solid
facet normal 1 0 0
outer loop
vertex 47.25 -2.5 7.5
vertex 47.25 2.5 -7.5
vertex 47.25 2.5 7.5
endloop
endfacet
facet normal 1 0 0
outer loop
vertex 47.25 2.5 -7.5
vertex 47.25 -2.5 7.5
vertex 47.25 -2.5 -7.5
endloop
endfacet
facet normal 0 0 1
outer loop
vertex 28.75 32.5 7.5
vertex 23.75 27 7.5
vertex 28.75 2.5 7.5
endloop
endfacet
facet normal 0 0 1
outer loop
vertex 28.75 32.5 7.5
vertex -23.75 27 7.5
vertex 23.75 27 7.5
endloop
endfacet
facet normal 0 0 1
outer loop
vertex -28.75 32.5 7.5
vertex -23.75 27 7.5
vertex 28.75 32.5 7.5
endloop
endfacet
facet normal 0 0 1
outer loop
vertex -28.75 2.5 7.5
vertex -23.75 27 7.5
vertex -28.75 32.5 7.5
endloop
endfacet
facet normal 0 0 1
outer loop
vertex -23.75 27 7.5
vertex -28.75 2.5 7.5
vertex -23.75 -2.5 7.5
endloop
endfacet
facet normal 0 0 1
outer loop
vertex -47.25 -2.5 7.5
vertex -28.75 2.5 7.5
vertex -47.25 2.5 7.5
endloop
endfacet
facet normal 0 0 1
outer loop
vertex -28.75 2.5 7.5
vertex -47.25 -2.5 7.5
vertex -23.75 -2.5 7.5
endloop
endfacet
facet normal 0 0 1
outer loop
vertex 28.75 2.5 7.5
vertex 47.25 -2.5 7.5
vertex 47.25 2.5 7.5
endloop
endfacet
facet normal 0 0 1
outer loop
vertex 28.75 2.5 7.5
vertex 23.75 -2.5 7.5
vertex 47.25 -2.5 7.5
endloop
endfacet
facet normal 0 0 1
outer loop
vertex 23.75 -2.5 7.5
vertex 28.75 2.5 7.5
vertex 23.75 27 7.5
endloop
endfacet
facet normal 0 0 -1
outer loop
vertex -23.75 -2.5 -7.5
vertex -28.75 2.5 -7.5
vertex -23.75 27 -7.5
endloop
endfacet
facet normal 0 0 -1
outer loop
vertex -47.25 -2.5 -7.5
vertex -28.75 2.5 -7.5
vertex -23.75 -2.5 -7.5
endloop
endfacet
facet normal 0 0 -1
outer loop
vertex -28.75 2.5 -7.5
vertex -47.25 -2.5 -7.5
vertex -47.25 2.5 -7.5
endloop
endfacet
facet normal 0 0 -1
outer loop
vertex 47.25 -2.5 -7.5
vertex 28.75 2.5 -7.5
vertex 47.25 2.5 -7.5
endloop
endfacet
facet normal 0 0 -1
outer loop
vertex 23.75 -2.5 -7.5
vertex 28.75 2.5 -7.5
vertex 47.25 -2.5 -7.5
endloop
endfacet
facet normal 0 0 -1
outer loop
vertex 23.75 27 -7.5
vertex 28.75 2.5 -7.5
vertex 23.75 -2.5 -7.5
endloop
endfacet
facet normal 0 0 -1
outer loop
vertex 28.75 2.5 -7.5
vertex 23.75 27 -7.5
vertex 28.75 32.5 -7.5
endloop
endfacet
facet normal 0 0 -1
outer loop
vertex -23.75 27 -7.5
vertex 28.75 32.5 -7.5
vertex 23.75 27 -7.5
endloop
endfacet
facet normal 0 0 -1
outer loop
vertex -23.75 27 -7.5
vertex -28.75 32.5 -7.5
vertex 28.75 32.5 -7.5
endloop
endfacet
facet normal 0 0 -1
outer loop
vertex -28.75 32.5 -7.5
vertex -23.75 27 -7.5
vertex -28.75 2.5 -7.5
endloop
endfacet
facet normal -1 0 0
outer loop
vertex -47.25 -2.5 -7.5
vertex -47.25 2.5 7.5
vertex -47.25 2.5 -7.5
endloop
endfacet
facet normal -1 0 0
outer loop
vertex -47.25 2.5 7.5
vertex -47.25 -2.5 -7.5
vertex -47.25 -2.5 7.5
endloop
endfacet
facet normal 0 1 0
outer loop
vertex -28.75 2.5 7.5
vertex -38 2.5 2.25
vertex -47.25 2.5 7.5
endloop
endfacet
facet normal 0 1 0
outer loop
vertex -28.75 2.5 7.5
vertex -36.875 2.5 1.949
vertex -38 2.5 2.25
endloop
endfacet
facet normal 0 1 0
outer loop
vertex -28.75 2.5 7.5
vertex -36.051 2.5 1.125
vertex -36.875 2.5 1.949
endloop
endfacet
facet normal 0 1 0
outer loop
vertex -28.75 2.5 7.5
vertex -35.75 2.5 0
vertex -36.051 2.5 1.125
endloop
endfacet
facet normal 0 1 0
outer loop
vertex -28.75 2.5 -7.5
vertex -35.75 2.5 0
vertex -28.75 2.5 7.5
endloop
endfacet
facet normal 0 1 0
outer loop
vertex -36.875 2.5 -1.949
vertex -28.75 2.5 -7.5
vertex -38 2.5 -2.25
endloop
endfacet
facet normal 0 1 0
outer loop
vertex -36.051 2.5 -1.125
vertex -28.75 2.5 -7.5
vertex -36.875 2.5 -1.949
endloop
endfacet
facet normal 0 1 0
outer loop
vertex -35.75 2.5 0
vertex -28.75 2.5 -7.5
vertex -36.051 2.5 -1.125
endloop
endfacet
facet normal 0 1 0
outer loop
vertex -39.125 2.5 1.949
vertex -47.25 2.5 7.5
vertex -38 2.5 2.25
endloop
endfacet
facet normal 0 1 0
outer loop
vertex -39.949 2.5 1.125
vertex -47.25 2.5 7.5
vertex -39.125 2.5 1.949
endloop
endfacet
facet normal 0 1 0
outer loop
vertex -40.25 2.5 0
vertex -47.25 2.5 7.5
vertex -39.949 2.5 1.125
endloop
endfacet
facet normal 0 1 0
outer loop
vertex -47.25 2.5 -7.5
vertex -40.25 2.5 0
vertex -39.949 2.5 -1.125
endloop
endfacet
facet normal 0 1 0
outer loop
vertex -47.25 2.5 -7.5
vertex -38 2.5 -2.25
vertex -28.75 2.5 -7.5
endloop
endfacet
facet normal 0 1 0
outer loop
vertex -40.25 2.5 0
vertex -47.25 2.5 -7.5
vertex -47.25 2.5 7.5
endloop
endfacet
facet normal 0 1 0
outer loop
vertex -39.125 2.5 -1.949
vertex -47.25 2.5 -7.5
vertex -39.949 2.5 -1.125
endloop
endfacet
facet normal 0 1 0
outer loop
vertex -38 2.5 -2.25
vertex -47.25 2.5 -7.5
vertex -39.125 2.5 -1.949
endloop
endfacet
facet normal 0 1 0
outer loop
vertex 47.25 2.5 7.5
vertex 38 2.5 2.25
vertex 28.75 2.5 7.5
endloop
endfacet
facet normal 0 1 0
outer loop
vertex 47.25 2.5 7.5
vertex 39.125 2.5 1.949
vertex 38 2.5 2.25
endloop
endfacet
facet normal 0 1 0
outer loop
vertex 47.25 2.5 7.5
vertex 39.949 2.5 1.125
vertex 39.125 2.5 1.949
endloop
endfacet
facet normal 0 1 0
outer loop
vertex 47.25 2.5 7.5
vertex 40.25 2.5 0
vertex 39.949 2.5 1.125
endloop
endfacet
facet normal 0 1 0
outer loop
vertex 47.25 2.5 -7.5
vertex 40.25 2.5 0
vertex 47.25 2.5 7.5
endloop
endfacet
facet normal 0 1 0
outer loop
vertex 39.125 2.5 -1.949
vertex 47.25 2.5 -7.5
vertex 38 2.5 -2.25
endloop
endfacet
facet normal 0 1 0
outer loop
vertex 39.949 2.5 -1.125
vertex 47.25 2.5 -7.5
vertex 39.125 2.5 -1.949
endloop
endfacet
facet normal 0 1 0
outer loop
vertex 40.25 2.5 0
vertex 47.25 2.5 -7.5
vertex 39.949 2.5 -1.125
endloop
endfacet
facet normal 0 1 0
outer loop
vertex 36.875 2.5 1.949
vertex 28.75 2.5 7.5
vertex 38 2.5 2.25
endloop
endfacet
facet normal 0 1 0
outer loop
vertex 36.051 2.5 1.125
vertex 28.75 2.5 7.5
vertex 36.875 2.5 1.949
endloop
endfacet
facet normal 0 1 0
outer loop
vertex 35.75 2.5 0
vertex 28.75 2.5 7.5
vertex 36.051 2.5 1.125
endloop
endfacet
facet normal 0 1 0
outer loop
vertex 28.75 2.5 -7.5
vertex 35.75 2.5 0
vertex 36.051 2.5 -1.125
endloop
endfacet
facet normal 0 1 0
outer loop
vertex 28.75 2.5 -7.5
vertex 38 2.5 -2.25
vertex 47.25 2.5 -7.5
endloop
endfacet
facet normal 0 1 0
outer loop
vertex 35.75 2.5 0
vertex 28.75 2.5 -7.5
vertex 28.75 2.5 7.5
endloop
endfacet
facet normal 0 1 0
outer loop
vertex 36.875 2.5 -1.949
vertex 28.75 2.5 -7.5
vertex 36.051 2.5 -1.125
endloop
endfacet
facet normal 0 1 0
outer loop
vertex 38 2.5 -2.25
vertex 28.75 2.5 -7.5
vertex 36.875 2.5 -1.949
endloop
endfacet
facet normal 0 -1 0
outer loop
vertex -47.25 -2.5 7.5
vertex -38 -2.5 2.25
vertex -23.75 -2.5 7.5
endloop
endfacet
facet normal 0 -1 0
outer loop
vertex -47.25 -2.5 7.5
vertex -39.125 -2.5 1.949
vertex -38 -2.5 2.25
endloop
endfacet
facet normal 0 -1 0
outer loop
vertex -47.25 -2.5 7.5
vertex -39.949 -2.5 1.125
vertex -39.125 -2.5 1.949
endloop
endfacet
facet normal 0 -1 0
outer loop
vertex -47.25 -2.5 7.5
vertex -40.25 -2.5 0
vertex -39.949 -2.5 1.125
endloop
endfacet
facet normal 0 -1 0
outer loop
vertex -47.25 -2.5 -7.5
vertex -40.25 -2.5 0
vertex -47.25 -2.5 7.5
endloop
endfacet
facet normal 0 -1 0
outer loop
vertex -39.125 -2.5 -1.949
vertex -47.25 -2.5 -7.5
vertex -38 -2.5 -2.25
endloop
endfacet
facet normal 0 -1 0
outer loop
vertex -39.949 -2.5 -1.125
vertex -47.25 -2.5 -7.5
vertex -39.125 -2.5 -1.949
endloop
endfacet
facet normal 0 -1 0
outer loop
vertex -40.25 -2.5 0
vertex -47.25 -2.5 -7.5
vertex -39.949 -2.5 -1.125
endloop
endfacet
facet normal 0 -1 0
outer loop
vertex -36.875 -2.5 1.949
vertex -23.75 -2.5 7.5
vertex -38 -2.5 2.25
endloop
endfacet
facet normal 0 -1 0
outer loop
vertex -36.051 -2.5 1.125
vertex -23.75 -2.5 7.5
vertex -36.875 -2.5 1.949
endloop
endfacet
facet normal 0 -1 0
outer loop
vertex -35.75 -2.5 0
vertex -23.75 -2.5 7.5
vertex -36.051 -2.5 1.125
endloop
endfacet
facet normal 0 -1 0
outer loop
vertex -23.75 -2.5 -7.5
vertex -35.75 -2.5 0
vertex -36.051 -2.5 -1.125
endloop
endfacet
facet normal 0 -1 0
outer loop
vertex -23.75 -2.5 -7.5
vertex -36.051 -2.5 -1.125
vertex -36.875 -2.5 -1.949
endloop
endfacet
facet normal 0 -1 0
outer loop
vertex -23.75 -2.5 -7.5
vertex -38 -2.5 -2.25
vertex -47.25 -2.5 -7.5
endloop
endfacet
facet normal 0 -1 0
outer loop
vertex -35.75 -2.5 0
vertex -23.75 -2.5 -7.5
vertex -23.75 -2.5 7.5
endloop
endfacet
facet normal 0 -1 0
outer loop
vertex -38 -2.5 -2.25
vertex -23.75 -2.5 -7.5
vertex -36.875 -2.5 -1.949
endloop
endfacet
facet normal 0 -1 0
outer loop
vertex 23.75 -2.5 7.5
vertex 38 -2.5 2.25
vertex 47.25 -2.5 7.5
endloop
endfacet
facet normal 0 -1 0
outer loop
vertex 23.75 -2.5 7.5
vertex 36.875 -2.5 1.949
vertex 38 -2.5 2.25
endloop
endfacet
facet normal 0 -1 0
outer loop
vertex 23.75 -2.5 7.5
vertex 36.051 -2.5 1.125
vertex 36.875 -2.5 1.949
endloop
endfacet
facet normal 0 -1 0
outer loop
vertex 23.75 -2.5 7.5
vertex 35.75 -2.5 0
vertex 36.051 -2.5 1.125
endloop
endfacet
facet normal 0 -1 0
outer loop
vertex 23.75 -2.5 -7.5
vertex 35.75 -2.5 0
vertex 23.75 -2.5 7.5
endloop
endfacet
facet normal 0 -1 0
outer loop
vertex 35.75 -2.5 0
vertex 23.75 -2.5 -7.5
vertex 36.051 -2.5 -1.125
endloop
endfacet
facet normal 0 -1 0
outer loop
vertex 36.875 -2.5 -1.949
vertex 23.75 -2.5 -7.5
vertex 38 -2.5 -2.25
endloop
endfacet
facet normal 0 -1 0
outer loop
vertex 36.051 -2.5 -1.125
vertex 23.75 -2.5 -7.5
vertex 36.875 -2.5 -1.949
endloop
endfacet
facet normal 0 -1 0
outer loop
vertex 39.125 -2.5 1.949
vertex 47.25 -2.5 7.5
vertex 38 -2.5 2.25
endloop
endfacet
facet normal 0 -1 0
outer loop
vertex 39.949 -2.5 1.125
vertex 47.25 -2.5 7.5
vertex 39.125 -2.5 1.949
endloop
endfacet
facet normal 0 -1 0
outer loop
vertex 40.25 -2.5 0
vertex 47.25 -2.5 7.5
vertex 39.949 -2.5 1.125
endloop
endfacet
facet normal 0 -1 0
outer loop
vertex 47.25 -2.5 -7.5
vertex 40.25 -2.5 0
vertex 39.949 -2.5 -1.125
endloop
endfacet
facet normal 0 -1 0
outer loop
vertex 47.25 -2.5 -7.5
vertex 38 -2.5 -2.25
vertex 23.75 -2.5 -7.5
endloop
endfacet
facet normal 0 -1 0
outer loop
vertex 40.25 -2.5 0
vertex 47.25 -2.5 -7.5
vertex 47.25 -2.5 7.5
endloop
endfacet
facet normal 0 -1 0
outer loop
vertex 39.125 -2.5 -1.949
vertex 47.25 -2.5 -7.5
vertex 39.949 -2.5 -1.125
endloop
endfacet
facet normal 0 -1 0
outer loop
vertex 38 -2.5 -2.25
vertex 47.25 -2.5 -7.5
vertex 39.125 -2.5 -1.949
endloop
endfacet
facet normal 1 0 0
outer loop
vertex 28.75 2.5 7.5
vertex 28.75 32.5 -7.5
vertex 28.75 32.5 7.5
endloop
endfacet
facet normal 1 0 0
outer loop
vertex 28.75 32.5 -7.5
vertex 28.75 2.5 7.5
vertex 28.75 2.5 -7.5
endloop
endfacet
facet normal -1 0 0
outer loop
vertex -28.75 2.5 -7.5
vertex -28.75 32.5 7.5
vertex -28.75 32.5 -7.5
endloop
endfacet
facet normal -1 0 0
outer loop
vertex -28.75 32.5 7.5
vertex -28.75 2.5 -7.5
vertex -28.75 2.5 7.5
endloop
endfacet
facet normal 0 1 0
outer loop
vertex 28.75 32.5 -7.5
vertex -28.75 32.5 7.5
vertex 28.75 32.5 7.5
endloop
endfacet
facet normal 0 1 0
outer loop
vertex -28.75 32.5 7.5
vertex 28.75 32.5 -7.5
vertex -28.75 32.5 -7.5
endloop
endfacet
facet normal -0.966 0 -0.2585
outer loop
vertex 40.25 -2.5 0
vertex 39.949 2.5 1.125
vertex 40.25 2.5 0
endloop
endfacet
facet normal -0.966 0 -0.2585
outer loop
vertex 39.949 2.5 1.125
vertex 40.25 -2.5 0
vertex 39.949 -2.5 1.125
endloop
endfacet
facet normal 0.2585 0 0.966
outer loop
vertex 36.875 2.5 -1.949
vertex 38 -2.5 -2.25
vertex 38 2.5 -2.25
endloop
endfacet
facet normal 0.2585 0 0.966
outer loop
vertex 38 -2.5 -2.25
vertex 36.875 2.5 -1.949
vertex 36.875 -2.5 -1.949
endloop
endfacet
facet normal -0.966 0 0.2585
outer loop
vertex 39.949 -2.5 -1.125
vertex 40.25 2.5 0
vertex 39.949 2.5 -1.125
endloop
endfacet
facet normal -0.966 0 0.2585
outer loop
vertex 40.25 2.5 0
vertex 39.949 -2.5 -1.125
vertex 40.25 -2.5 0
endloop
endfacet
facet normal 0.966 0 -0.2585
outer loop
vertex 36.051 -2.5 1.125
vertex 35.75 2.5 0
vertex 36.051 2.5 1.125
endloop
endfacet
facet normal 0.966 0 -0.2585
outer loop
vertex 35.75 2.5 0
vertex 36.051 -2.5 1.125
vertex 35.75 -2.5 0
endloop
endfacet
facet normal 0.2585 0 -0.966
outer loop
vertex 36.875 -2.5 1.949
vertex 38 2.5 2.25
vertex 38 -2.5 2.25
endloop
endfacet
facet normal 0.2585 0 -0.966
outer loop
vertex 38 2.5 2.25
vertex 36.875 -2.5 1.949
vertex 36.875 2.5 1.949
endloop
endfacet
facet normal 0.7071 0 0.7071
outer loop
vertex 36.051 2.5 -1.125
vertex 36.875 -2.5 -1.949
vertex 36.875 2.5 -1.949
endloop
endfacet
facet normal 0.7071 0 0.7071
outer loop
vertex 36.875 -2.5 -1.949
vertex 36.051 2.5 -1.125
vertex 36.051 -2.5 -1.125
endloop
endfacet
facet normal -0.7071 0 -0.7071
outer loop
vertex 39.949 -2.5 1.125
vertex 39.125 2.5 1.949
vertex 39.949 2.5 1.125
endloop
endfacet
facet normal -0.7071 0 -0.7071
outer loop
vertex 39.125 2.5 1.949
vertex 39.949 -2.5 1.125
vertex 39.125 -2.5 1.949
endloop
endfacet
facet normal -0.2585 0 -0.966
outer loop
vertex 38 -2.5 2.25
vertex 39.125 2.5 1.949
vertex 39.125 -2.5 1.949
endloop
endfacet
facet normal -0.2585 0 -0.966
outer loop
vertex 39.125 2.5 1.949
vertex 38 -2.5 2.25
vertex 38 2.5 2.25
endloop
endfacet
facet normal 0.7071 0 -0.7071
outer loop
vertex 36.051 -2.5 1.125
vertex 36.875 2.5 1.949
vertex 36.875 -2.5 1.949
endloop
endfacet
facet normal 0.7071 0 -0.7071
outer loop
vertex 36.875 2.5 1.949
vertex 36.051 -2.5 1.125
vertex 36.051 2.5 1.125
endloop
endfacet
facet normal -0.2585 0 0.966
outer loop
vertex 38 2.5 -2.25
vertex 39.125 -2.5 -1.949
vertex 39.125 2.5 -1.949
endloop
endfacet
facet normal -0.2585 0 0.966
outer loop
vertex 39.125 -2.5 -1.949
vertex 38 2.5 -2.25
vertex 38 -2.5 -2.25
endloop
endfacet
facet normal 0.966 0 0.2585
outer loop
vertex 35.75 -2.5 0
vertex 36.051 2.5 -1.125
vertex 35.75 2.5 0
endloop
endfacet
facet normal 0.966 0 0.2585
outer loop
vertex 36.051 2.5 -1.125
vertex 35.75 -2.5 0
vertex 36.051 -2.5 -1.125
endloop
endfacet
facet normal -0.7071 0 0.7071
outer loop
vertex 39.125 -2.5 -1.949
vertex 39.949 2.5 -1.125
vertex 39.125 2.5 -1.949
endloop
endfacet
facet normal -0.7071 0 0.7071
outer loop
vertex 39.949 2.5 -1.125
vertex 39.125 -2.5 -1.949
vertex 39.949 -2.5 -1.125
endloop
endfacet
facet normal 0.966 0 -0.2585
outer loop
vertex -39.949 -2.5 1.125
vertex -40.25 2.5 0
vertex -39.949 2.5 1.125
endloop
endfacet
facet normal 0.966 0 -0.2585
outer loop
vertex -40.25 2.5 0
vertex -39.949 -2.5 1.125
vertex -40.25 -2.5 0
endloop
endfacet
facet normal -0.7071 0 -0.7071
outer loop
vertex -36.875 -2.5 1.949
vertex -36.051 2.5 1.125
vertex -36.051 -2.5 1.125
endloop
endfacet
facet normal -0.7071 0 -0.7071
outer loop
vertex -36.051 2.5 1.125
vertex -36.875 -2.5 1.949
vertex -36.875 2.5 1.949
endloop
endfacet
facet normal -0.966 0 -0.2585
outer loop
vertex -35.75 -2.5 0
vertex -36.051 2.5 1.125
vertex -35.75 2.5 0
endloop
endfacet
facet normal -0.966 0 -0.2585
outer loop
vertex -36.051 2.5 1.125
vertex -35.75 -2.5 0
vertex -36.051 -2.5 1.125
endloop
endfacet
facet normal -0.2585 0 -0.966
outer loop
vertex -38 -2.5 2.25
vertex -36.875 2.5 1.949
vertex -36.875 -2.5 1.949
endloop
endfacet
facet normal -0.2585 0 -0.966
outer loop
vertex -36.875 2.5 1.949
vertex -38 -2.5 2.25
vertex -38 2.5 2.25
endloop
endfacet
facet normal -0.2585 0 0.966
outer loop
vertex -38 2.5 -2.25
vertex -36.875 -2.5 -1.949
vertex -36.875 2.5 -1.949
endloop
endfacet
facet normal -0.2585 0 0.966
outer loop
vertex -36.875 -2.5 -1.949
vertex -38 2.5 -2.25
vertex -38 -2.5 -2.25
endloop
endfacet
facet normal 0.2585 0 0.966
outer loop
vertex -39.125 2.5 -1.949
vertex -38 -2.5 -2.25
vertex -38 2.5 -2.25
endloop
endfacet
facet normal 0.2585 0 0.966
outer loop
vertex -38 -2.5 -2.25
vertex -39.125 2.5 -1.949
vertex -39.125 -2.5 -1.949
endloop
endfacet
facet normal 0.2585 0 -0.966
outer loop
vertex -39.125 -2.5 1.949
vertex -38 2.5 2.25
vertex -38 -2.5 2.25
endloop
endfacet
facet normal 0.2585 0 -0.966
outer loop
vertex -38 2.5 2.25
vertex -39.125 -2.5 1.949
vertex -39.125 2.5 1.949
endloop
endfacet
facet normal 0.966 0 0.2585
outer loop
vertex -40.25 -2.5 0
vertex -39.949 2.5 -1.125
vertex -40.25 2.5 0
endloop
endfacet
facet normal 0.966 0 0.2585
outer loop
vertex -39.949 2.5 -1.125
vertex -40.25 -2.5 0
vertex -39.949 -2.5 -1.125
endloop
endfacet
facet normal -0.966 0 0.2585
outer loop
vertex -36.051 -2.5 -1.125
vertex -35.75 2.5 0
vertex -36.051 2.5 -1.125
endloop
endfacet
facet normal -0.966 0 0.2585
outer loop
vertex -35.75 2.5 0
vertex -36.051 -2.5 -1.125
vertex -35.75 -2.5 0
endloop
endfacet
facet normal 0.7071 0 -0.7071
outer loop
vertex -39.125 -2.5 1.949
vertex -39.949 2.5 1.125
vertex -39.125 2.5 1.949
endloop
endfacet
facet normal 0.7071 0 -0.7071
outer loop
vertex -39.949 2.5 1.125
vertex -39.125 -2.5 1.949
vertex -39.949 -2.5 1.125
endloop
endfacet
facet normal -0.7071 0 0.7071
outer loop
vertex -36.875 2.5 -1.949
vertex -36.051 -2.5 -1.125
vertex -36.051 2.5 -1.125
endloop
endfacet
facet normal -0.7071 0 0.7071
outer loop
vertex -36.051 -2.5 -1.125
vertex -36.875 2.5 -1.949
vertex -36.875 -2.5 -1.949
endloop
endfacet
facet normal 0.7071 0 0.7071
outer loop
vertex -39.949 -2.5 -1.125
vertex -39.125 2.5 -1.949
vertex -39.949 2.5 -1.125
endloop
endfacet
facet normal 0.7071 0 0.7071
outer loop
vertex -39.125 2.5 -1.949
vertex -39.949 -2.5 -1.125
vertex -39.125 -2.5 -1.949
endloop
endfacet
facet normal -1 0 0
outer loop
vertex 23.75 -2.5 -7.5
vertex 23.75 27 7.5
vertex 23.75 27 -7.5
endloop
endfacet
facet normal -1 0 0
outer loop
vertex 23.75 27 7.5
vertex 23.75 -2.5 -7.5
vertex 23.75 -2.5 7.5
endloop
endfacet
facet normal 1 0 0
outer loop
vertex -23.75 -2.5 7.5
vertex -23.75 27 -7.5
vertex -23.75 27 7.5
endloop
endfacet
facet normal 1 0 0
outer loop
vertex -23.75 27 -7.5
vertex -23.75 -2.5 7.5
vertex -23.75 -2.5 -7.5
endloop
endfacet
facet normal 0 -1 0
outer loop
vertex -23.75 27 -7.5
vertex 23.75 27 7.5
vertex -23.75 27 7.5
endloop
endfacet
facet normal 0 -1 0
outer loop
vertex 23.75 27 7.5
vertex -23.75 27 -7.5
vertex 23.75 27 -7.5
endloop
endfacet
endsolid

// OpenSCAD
// file: ../../lib/brackets.scad
default_hole_d = 6.35;
default_wall_thickness = 5;
default_foot_clearance = 7;
default_bracket_height = 15;

render_helper = 1;

module bracket(
    hole_d = default_hole_d,
    wall_thickness = default_wall_thickness
) {
    $hole_d = hole_d;
    $wall_thickness = wall_thickness;
    
    children(0);
}

module u_bracket(
    width,
    depth,
    height = default_bracket_height,
    foot_clearance = default_foot_clearance
) {
    foot_width = foot_clearance * 2 + $hole_d;
    bracket_outside_width = foot_width * 2 + $wall_thickness * 2 + width;
    bracket_depth = depth + $wall_thickness;

    difference() {
        bracket_body();
        cutout();
        holes();
    }
    
    module bracket_body() {
        union() {
            cube([
                bracket_outside_width,
                $wall_thickness,
                height
            ], center = true);
            
            body_offset_y = bracket_depth / 2 - $wall_thickness / 2;
            translate([0, body_offset_y, 0])
            cube([
                width + $wall_thickness *2,
                bracket_depth,
                height
            ], center = true);
        }
    }
    
    module cutout() {
        hole_offset_y = depth / 2 - $wall_thickness / 2 - render_helper;
        translate([0, hole_offset_y, 0])
        cube([
            width,
            depth + render_helper,
            height + render_helper
        ], center = true);
    }
    module holes() {
        hole_height = $wall_thickness + render_helper;
        offset_x = width / 2 + foot_width / 2 + $wall_thickness;
        for (x = [1, -1]) {
            translate([offset_x * x, hole_height / 2, 0])
            rotate([90, 0, 0])
            cylinder(
                h = hole_height,
                d = $hole_d,
                $fn=12
            );
        }
    }
}
// main file
include <../../lib/brackets.scad>

BRACKET_WIDTH = 47.5;
BRACKET_DEPTH = 30;
HOLE_DIAMETER = 4.5;

bracket(hole_d = HOLE_DIAMETER)
u_bracket(BRACKET_WIDTH, BRACKET_DEPTH);
